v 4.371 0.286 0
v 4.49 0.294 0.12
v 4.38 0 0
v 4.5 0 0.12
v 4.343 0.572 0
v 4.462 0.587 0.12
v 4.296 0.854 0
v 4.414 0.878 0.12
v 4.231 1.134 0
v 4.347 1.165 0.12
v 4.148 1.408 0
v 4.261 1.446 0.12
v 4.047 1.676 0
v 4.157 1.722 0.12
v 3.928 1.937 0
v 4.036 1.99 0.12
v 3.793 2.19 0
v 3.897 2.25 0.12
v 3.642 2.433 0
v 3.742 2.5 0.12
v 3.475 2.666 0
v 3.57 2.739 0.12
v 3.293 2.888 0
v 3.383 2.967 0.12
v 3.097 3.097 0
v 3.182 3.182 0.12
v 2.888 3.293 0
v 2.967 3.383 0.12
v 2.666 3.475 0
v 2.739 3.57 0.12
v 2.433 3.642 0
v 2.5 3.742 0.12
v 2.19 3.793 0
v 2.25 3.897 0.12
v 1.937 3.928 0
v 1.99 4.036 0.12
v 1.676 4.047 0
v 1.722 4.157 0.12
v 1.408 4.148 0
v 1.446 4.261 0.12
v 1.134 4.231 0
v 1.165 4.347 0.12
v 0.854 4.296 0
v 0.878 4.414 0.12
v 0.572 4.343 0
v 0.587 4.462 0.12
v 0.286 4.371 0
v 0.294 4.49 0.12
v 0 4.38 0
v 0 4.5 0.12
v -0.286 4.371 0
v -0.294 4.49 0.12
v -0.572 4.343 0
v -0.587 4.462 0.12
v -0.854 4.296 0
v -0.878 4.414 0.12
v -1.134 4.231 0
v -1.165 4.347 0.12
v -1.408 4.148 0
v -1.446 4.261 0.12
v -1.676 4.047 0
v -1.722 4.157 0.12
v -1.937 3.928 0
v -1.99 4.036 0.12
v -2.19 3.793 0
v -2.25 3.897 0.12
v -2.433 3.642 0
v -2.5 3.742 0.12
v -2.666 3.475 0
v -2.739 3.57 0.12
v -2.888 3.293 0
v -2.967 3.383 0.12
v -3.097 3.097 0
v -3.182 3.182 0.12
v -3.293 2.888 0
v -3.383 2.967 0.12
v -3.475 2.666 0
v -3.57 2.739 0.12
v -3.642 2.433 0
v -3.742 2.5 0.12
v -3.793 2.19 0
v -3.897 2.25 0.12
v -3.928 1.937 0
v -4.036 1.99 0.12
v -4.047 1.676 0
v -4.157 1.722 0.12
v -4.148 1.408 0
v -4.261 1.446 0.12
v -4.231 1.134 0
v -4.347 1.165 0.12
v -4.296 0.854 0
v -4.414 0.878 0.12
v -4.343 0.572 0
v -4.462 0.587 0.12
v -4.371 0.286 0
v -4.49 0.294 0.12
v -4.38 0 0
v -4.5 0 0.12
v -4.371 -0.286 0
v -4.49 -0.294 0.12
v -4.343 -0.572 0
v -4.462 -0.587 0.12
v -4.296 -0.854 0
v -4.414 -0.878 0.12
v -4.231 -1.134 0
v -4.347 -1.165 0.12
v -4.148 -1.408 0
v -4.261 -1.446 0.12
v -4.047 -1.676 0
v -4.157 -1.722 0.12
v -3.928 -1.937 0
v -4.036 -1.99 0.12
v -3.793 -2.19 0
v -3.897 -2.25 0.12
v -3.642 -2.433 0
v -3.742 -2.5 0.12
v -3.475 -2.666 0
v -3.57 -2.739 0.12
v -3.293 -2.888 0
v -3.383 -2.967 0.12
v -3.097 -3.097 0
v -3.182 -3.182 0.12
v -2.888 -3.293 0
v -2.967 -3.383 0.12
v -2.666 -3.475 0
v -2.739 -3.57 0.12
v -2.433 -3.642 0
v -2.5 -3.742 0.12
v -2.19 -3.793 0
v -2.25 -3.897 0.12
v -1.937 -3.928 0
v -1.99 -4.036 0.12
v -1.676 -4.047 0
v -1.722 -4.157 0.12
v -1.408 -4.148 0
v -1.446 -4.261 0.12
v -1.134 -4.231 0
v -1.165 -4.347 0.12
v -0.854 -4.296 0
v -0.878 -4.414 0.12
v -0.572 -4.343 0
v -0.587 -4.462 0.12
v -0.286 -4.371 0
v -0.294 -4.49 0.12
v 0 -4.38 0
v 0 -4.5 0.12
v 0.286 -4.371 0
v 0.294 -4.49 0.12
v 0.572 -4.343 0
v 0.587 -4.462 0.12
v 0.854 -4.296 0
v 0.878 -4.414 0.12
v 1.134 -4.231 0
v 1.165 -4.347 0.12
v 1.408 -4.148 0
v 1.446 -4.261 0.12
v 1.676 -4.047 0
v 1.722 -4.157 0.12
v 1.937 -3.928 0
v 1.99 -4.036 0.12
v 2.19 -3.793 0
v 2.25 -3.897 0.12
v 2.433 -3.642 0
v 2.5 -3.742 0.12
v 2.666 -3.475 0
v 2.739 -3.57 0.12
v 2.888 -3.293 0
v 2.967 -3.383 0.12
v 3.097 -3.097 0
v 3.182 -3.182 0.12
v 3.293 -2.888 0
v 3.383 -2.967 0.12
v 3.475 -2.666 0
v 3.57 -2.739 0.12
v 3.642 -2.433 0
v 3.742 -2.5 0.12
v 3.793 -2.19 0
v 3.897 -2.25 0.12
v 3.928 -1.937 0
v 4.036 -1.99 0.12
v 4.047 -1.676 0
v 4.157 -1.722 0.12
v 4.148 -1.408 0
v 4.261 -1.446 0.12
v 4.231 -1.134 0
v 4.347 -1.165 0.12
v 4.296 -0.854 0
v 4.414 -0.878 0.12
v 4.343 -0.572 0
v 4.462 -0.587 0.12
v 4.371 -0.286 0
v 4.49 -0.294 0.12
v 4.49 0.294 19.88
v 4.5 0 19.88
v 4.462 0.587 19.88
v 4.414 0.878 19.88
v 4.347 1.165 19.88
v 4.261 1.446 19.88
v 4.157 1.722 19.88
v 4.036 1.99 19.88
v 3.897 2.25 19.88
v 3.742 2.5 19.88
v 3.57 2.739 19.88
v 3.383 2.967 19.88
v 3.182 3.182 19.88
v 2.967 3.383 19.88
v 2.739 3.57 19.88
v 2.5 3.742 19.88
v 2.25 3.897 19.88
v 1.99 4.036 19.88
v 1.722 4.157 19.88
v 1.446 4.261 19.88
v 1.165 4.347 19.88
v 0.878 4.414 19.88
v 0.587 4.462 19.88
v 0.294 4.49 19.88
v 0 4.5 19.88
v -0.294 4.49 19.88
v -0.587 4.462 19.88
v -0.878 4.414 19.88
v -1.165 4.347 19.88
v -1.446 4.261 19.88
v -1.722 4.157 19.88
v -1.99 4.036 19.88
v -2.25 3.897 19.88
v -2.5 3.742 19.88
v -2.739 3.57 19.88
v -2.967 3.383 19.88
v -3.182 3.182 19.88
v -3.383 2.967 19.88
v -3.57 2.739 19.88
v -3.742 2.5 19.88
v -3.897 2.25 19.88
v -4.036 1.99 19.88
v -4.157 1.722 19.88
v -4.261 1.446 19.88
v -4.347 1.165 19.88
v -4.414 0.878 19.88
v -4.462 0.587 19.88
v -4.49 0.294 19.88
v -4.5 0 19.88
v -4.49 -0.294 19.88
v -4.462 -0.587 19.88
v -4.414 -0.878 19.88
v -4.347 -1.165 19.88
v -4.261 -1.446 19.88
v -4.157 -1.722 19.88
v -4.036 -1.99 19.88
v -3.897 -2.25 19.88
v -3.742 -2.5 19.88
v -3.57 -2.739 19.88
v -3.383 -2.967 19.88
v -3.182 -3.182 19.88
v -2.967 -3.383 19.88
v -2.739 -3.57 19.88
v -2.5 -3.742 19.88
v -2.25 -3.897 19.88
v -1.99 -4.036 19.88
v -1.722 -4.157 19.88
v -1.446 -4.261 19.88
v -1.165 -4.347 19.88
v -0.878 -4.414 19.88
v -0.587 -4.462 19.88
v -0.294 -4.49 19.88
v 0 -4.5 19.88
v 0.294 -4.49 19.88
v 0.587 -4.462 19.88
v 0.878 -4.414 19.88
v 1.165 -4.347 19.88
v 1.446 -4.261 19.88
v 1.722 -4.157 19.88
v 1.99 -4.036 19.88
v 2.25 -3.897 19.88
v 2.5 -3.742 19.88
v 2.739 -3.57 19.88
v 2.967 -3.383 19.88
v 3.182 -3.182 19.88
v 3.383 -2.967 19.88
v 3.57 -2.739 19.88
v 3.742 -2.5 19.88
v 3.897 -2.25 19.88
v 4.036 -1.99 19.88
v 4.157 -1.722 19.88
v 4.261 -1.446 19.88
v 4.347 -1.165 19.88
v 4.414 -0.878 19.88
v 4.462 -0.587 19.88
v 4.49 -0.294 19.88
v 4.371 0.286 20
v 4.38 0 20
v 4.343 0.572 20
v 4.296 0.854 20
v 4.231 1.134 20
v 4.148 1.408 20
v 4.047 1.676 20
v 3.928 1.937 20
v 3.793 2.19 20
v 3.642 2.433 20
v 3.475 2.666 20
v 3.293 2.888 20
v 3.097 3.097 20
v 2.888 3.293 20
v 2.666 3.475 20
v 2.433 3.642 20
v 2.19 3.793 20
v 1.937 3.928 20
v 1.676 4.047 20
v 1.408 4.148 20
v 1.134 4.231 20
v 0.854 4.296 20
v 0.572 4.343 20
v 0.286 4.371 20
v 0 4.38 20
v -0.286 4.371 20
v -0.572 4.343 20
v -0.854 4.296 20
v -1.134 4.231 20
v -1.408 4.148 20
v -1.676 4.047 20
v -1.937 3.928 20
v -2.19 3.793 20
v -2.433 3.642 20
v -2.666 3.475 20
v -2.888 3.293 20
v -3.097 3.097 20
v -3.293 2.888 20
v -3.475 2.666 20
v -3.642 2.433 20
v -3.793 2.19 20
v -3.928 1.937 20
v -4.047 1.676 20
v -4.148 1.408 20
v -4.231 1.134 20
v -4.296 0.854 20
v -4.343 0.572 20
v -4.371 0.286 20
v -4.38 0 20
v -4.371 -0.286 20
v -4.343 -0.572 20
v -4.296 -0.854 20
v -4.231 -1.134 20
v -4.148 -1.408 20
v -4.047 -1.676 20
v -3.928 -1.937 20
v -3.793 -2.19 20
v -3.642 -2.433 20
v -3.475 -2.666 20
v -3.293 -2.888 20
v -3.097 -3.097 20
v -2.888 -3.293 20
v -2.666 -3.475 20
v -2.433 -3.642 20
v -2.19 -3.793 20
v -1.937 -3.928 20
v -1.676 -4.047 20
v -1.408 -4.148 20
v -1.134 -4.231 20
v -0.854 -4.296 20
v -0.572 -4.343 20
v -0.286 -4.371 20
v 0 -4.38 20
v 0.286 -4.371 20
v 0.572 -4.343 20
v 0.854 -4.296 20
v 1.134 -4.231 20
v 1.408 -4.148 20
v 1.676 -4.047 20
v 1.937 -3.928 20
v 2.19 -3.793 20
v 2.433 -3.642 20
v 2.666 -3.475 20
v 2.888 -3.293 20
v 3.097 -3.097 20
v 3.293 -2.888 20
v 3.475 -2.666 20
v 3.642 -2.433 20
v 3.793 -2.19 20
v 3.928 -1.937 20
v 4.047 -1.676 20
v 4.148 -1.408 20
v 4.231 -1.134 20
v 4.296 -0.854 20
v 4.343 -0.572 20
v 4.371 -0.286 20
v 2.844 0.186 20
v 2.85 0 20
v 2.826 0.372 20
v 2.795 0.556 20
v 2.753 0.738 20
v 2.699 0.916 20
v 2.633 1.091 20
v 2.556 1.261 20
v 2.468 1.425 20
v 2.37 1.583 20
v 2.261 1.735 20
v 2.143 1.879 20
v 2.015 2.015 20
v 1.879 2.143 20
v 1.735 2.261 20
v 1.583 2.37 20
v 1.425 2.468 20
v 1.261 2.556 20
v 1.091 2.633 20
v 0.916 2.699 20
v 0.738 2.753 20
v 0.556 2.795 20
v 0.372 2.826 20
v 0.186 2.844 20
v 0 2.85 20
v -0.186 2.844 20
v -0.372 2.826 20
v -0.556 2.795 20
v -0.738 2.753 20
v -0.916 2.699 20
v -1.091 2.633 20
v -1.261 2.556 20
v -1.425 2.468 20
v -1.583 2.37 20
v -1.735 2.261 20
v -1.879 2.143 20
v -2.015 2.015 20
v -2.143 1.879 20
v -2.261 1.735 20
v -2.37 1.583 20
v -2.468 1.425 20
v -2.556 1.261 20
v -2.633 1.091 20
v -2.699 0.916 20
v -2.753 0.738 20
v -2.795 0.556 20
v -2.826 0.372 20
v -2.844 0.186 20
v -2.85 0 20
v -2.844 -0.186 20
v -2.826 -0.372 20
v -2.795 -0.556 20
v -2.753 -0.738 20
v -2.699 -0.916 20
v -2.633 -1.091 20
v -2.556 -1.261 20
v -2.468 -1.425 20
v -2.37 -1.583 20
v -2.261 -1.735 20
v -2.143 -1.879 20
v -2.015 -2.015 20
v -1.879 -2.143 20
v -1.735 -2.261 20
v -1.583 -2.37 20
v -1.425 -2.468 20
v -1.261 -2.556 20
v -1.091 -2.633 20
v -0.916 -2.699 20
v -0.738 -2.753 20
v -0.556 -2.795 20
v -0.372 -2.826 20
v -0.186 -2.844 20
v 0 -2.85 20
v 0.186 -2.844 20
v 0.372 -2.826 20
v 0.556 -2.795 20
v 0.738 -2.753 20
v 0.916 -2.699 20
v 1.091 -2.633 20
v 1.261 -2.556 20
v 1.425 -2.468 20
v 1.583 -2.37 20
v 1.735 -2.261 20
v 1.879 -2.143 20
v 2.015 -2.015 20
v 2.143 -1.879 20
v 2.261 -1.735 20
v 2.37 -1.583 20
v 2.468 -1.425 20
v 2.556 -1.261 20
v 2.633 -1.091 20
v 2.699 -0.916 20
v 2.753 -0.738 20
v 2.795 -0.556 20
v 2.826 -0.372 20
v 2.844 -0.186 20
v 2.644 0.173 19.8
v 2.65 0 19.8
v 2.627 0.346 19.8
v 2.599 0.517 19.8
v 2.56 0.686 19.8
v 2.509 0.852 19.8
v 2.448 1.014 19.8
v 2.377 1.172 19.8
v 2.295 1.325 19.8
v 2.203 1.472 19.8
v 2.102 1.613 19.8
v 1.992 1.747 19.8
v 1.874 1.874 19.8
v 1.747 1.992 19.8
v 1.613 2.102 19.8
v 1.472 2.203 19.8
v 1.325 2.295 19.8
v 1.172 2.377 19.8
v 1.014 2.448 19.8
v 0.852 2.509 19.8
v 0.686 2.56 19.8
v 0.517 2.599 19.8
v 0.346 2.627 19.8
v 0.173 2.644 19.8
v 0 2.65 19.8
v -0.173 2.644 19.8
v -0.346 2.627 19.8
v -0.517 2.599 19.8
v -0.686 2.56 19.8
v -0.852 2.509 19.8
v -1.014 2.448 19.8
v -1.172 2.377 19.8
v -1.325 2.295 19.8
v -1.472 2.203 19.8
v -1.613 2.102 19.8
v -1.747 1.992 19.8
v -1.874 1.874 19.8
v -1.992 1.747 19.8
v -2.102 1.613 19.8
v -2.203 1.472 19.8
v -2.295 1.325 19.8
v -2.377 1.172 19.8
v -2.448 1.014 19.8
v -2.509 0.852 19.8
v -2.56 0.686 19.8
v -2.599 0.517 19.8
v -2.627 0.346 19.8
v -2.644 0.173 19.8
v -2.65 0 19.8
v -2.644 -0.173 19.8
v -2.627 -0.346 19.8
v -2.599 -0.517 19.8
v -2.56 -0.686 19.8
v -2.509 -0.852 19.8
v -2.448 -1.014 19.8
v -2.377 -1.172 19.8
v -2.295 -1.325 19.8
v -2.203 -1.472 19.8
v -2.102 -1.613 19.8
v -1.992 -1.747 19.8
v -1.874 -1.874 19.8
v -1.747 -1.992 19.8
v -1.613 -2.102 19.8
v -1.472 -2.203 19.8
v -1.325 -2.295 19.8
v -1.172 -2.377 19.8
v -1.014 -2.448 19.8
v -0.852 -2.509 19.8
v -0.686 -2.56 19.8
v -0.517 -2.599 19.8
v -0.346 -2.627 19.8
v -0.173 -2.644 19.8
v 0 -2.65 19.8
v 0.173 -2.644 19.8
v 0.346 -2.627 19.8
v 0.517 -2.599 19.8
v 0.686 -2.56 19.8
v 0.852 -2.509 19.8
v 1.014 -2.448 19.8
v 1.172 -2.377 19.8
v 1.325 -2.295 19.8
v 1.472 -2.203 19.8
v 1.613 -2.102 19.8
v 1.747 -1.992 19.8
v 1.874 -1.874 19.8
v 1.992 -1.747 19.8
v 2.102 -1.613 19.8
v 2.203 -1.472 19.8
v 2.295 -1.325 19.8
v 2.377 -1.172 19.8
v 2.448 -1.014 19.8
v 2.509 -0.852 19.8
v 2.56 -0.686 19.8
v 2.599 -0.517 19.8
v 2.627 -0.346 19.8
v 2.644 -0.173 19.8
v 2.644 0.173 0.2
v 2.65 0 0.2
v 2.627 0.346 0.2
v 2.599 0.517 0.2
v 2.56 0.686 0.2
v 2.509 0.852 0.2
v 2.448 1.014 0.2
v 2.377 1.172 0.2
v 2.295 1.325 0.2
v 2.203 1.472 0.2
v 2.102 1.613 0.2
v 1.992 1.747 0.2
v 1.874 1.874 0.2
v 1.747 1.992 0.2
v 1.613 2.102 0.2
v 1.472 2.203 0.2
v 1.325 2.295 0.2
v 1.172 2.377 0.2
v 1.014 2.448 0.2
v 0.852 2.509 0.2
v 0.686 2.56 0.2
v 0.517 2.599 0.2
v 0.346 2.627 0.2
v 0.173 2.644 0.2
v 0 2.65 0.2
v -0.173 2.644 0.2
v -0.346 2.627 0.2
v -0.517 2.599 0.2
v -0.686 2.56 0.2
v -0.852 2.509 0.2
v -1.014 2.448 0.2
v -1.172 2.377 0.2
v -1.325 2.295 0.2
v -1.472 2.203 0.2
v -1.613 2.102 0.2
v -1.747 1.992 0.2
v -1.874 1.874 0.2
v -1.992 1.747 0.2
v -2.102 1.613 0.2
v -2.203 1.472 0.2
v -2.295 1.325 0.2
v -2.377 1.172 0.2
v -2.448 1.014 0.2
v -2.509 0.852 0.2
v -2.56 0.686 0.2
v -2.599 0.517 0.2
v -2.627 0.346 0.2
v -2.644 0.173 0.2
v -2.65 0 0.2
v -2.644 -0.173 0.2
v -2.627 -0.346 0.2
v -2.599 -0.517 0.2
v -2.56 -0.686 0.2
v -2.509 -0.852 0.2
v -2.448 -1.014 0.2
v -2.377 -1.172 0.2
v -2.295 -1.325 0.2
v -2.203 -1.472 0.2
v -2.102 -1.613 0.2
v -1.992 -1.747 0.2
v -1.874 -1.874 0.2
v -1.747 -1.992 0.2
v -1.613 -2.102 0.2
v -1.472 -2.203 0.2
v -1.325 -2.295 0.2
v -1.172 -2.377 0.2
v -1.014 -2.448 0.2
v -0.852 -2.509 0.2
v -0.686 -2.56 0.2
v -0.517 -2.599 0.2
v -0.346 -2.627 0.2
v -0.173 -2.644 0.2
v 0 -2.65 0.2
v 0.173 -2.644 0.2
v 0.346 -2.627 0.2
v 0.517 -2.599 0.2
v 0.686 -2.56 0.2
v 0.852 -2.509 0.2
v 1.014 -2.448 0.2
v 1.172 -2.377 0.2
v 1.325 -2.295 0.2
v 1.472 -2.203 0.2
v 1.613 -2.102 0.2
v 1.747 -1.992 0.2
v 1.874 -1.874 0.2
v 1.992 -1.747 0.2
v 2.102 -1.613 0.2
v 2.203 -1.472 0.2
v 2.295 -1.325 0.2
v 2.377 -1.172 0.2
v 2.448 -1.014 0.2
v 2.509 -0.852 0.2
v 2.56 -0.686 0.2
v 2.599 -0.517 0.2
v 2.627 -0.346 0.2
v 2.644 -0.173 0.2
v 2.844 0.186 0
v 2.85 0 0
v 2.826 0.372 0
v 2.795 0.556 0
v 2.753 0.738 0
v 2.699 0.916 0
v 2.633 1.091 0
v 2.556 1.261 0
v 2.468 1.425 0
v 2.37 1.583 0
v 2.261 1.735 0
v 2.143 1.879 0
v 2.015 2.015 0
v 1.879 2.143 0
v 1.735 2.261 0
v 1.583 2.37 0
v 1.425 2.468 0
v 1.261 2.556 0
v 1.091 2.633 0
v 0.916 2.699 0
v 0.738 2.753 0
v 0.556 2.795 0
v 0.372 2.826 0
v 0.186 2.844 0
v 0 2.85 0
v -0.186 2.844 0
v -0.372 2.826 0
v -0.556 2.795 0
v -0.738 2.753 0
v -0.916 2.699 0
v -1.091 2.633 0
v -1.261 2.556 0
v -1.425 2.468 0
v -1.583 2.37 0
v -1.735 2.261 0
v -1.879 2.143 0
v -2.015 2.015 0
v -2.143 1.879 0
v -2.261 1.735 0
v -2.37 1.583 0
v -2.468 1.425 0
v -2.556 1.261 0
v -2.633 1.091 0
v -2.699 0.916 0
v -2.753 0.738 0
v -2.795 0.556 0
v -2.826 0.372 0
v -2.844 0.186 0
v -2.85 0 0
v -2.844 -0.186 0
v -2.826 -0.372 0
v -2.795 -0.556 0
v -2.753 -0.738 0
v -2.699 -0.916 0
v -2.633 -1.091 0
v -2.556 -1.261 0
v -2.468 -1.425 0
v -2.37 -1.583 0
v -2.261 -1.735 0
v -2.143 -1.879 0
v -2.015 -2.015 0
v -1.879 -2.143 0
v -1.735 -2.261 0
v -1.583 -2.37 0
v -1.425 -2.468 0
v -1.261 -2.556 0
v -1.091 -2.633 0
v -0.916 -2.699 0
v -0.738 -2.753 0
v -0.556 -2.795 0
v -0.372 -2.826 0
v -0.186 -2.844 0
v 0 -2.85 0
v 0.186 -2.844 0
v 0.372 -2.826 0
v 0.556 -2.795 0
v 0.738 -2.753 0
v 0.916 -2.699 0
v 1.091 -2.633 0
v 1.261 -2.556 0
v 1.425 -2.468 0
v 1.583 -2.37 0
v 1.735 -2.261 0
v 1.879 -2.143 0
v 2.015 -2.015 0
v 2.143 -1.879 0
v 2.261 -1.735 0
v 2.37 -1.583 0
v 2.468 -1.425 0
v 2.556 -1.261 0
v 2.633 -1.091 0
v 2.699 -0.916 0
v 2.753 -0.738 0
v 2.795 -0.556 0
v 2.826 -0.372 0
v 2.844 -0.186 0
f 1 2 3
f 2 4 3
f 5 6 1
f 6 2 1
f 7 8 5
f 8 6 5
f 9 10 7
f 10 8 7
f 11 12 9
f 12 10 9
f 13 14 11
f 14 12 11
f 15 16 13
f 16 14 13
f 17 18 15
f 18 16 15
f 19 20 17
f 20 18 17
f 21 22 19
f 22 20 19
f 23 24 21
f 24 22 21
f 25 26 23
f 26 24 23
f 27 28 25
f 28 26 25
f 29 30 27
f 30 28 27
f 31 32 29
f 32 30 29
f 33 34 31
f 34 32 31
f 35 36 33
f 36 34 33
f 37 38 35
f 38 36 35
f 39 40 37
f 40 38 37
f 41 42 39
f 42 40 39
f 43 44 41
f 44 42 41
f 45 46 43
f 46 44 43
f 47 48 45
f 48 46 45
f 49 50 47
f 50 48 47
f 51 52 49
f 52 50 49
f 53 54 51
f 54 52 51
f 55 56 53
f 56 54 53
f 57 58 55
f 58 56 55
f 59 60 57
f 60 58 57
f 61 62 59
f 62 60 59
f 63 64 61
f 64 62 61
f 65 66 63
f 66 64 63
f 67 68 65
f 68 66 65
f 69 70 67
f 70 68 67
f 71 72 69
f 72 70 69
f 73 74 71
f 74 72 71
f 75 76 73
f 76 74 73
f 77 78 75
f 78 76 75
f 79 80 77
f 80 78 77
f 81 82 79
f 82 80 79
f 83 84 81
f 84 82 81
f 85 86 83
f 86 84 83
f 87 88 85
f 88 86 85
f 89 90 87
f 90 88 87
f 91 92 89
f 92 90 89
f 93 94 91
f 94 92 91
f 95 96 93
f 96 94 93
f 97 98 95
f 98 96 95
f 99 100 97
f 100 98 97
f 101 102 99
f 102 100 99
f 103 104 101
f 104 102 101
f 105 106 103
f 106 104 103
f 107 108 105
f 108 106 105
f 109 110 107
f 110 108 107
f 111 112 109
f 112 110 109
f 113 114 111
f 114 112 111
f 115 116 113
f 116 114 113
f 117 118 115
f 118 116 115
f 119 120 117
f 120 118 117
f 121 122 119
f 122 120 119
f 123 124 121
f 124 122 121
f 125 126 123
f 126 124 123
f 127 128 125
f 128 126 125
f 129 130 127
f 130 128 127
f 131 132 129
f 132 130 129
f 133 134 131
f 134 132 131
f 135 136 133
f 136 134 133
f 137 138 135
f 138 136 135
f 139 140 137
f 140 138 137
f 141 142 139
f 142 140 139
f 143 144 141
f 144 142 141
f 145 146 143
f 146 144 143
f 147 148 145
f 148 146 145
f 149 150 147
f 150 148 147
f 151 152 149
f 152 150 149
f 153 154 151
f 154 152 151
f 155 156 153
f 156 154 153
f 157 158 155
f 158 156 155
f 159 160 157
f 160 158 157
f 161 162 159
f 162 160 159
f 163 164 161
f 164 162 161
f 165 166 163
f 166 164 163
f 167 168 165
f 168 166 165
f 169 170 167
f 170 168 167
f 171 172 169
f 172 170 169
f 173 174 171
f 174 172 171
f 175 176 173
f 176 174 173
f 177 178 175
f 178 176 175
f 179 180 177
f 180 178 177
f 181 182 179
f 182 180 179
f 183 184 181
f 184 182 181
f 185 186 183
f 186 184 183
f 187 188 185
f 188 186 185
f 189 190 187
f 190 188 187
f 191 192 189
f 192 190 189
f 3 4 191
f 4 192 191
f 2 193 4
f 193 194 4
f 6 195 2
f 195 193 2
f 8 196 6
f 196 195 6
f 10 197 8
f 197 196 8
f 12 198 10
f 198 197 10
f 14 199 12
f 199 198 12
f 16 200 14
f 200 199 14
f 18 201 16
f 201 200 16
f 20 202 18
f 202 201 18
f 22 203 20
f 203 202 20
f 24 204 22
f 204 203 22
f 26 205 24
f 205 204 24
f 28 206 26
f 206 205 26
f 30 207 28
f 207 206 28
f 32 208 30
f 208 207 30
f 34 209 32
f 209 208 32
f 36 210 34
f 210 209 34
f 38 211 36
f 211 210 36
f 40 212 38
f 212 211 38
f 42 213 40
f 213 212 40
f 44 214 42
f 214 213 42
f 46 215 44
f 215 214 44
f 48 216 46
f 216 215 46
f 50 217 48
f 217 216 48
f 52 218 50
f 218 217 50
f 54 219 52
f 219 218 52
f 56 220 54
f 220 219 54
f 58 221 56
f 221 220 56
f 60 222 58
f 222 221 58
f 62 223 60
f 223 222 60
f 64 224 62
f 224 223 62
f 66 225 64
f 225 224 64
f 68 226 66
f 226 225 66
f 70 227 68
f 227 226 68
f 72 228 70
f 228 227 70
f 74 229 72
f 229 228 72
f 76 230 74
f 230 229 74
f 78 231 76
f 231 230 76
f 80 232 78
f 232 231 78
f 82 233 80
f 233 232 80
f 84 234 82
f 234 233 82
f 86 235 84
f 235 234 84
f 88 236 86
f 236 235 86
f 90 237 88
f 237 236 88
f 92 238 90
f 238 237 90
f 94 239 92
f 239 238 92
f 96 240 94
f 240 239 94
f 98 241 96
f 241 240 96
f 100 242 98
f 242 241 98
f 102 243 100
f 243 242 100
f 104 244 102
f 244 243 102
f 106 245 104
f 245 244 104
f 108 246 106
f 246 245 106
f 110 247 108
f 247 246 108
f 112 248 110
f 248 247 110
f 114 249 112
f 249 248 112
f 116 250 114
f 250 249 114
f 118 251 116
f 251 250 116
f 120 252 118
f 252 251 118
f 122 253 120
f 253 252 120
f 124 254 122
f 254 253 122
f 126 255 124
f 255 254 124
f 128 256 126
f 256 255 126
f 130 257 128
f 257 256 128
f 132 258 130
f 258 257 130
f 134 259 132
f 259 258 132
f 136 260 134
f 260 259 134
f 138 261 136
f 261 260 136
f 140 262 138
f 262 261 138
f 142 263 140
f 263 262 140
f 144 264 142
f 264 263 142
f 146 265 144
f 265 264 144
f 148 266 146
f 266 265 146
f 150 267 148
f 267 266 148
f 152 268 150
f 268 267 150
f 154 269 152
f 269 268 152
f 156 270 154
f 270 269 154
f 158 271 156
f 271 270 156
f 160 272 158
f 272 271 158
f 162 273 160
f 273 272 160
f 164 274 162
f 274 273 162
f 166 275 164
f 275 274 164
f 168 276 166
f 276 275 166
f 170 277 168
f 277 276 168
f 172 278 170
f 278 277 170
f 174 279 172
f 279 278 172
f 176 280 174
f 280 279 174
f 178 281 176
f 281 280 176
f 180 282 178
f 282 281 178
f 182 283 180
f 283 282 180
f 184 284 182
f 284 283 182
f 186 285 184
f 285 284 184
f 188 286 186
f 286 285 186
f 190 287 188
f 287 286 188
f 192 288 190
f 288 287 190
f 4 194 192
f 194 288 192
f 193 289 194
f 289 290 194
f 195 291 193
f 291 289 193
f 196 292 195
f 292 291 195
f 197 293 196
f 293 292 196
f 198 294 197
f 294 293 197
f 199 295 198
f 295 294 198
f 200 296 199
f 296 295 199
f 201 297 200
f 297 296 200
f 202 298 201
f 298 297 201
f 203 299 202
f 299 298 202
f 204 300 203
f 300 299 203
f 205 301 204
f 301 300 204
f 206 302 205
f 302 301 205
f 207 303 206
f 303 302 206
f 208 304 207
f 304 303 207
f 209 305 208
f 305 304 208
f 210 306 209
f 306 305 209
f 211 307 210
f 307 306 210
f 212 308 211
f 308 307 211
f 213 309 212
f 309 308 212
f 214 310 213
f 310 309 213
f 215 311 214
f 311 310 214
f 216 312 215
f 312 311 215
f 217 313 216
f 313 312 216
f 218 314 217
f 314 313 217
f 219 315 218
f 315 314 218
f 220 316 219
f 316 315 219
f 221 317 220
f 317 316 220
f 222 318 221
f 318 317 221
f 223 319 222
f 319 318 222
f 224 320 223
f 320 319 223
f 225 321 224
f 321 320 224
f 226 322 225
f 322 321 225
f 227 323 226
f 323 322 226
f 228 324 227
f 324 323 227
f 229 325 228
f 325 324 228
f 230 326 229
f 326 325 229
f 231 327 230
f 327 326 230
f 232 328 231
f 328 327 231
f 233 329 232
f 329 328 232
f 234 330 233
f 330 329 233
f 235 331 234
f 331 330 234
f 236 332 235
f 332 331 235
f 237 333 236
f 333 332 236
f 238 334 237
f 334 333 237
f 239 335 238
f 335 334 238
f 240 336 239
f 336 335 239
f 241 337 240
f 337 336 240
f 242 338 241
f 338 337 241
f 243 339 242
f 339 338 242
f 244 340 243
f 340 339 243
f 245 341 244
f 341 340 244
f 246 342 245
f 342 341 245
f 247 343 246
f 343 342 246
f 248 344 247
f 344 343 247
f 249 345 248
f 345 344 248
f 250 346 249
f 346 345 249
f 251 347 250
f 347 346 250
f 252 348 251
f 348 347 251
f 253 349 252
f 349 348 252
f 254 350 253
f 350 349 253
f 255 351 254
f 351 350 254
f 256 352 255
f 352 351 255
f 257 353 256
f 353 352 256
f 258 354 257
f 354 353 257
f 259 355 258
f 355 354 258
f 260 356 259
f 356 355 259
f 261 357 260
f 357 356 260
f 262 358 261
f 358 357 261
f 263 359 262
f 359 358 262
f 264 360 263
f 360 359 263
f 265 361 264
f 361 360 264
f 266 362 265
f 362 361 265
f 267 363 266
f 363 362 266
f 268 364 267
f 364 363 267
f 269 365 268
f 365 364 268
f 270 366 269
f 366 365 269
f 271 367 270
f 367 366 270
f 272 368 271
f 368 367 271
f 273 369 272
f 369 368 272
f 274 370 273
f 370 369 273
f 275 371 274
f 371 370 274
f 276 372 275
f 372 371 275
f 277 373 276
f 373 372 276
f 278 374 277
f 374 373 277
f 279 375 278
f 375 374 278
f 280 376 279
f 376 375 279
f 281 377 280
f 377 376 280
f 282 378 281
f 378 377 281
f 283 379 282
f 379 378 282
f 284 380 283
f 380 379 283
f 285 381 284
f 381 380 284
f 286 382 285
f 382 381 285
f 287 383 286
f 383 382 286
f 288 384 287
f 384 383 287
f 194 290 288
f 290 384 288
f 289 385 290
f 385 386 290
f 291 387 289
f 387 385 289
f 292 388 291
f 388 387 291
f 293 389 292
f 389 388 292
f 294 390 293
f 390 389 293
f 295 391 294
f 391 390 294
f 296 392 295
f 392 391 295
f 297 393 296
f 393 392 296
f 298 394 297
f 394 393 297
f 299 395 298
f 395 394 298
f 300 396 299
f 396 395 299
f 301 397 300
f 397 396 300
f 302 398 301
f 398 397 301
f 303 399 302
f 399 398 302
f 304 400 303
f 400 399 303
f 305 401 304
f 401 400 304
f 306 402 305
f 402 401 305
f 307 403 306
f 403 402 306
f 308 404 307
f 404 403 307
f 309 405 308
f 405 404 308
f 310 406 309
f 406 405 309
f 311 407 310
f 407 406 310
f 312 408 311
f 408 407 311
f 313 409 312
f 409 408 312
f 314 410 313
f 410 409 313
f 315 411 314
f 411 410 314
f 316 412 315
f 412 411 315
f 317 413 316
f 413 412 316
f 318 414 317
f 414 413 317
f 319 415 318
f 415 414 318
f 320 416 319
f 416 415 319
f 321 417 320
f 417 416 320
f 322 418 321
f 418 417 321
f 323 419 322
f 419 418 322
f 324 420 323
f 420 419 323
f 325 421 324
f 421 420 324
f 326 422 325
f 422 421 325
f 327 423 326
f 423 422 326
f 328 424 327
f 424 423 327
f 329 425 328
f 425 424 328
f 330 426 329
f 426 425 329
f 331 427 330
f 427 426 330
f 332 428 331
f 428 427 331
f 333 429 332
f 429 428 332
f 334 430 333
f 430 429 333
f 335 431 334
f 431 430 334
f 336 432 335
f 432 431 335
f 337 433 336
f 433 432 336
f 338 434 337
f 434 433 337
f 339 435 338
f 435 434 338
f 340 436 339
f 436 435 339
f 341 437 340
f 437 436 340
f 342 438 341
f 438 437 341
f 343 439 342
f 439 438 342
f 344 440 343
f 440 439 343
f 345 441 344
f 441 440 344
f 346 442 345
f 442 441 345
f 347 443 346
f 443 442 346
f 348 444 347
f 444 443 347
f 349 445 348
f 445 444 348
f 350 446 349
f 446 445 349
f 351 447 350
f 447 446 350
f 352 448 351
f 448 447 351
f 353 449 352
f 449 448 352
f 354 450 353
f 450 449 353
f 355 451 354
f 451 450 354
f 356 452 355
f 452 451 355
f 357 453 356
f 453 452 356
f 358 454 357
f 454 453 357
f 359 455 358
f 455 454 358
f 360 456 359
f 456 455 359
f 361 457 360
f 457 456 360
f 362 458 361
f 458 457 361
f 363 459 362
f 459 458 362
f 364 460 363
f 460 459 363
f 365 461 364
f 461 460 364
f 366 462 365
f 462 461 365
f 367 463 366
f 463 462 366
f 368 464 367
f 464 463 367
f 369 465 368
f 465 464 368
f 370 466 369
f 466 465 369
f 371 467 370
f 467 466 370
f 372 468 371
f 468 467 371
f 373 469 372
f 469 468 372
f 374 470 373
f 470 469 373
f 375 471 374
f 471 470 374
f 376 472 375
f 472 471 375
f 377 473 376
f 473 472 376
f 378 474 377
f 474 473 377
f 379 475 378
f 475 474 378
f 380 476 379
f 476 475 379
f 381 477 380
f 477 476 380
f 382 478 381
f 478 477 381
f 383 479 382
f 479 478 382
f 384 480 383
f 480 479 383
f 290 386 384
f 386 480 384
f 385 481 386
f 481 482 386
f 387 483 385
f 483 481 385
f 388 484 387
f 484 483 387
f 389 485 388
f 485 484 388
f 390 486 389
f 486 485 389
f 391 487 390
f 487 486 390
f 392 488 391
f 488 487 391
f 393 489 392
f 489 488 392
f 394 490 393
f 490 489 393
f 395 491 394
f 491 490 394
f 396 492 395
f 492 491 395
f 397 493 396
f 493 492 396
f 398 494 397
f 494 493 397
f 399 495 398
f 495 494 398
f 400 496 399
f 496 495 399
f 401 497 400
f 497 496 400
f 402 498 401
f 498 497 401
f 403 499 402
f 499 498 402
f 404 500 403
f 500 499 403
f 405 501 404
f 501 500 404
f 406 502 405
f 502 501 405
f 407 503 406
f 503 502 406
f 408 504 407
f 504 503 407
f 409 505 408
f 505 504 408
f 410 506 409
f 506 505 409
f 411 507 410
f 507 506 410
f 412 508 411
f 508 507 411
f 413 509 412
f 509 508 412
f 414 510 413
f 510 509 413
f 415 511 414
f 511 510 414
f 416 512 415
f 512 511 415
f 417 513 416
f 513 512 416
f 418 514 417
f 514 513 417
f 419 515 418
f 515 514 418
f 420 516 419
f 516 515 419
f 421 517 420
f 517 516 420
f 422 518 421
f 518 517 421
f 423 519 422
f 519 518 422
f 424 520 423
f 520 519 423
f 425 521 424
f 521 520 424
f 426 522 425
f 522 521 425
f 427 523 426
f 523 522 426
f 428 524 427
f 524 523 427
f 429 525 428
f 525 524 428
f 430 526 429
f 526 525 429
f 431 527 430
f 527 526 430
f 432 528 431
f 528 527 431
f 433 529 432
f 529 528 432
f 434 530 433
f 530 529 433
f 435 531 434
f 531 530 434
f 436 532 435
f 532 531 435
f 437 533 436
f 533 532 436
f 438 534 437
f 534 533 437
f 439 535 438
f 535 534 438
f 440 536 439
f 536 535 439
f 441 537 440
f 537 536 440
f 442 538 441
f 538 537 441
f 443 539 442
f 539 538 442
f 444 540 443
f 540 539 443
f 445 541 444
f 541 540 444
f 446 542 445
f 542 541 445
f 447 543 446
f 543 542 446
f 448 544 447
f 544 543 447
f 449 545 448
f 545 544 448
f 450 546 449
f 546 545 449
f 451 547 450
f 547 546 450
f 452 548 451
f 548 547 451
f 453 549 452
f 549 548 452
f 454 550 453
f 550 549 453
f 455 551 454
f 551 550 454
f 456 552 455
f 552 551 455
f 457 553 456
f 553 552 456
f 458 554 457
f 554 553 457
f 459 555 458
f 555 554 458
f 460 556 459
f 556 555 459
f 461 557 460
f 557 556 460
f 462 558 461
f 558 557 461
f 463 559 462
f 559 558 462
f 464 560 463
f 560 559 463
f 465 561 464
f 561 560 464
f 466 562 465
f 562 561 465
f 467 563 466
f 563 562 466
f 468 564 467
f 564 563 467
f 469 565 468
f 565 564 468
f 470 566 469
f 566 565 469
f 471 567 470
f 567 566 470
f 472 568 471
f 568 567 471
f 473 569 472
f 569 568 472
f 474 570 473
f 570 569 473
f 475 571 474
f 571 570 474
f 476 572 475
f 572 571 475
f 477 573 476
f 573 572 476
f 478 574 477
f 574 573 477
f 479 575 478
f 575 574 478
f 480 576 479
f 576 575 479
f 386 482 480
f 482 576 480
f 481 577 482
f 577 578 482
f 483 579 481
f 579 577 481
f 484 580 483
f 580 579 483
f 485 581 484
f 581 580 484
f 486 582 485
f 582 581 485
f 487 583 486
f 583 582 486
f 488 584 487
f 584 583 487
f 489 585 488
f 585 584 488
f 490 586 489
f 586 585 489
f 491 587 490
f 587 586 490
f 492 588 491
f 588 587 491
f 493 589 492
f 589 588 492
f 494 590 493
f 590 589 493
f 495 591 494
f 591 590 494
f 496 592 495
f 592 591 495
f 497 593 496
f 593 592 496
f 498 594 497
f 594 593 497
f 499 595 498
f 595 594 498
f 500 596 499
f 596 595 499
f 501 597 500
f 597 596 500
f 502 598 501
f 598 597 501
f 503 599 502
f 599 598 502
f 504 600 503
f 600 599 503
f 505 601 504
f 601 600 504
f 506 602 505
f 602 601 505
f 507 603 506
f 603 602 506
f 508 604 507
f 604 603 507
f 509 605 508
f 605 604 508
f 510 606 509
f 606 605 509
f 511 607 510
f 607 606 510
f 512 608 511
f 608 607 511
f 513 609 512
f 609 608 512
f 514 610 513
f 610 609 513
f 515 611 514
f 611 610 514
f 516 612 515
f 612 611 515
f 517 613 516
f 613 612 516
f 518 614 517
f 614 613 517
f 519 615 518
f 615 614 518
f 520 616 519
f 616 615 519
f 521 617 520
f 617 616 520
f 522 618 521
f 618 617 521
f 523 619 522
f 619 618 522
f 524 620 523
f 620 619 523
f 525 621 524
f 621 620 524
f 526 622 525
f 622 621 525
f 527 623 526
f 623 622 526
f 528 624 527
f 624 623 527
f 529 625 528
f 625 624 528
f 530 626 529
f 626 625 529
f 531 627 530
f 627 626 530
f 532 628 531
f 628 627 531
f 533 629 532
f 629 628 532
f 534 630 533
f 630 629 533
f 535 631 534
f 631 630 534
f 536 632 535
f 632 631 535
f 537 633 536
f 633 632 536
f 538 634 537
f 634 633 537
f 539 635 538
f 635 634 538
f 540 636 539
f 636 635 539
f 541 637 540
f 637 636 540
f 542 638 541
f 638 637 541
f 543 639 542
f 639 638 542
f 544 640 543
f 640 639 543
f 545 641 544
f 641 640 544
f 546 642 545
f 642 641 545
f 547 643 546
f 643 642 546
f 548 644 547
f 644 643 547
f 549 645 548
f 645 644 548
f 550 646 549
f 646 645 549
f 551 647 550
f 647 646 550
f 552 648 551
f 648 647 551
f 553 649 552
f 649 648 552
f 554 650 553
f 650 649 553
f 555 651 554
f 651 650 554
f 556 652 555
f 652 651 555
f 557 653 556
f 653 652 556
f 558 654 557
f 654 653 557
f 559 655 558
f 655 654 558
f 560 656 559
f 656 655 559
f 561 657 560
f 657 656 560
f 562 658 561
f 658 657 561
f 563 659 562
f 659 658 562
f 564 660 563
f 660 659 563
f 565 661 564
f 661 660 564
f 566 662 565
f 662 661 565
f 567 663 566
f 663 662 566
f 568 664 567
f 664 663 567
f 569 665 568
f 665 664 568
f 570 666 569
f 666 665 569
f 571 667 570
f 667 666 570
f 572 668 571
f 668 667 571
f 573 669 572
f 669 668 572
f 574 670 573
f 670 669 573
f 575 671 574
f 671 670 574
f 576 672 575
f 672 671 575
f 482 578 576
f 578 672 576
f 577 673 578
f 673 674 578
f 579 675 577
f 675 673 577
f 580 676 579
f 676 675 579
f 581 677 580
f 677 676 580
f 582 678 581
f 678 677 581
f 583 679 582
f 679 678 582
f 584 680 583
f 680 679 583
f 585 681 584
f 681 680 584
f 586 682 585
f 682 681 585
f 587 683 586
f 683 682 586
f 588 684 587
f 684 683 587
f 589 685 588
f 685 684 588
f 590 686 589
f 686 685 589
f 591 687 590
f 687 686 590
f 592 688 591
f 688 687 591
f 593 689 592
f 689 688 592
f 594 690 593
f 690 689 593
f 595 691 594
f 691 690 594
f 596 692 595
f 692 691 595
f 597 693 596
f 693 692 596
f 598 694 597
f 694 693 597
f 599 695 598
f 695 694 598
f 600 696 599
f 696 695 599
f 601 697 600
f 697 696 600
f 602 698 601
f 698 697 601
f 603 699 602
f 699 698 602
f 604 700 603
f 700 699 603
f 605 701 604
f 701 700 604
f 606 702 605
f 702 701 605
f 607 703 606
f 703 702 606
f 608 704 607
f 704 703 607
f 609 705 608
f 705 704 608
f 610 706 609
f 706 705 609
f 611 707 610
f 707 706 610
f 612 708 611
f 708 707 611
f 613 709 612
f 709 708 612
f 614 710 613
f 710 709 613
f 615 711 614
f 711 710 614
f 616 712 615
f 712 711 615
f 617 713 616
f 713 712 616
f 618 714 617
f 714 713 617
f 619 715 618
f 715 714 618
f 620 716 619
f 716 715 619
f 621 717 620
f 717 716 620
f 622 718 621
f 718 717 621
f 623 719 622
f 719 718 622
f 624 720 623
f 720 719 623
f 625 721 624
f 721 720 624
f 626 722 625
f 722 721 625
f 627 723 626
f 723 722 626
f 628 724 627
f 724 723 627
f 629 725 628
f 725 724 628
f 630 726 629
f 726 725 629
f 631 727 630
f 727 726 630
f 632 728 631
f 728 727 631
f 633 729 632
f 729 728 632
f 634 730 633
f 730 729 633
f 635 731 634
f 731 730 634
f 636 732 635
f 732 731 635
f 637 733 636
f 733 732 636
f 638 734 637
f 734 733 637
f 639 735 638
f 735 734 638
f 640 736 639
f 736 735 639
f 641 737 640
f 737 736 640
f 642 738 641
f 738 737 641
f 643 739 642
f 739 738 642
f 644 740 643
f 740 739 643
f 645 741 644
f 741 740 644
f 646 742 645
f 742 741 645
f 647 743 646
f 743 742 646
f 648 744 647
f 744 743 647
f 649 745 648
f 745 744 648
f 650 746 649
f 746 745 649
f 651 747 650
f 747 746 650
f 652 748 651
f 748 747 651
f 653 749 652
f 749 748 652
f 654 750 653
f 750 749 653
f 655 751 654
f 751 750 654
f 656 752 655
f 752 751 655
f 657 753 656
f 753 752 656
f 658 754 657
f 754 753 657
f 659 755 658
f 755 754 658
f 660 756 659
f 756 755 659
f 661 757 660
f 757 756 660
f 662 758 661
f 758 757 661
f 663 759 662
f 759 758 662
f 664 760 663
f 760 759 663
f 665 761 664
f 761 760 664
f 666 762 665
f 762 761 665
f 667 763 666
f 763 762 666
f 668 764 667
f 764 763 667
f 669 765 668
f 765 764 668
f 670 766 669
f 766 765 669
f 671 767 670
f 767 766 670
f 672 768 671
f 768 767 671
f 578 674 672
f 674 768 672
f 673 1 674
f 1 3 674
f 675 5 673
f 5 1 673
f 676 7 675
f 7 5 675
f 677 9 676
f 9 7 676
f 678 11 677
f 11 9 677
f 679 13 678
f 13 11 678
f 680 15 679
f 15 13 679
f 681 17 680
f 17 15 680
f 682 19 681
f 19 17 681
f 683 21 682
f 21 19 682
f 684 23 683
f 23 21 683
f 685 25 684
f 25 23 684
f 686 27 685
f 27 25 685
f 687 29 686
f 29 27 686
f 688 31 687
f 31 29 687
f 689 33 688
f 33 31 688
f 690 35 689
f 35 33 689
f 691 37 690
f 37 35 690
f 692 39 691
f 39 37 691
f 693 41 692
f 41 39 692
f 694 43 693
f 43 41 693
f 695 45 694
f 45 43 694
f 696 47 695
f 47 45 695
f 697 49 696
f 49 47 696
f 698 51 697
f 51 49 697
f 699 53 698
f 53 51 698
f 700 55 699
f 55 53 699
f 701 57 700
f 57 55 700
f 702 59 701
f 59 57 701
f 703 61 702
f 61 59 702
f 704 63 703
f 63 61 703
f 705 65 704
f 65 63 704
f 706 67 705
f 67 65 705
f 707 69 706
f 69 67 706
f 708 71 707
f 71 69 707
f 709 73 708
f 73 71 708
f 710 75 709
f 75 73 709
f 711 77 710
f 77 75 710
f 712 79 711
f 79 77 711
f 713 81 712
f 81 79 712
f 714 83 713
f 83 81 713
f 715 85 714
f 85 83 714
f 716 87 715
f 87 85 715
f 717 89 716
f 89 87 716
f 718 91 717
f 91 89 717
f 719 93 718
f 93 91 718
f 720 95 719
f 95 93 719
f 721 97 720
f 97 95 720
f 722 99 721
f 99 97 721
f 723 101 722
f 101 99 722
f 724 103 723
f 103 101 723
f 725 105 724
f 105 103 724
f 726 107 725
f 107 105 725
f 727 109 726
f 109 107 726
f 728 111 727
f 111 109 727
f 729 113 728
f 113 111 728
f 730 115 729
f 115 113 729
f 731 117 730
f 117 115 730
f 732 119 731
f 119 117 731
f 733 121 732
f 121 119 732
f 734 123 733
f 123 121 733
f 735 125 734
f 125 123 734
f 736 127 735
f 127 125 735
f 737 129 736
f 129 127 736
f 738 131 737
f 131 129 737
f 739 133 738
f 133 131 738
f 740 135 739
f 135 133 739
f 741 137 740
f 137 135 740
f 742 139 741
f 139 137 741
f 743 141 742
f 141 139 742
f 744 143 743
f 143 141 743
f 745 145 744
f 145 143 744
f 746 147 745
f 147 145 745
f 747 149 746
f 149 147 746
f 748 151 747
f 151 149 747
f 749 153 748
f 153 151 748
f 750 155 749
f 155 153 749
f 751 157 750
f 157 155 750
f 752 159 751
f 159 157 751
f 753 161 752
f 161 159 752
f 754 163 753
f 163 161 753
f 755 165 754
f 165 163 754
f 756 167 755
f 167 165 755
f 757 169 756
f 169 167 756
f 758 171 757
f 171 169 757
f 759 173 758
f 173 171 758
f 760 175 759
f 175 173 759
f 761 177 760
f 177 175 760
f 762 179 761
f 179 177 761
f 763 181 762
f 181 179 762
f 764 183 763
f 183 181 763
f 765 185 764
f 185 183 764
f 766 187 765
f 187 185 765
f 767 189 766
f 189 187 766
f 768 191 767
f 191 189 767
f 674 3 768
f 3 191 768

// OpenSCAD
// OOMP generic catalogue model; units: mm.
// Stud length is additional to body depth. Tapping depths are model assumptions.
variant = "full"; // [full, display]
family = "spacer";
connection_type = "plain";
depth_mm = 20;
stud_length_mm = 0;
tapped_depth_mm = 0;
bore_mm = 5.3;
outer_diameter_mm = 9;
across_flats_mm = 6;
thread_nominal_diameter_mm = 3;
thread_pitch_mm = 0.5;
edge_chamfer_mm = 0.12;
mouth_chamfer_mm = 0.2;
angular_segments = 96;
samples_per_pitch = 16;

// Boundary travels up the outside, then down any tapped/plain bore.
// Equal-height rings at shoulders form the annular shoulder faces.
n = angular_segments;
threaded = family == "standoff";
has_stud = connection_type == "stud_to_tapped" || connection_type == "stud_to_stud";
two_studs = connection_type == "stud_to_stud";
through = !threaded || connection_type == "tapped_to_tapped";
pitch = thread_pitch_mm;
diameter = threaded ? thread_nominal_diameter_mm : bore_mm;
minor = diameter - 5*sqrt(3)*pitch/8;
transition = mouth_chamfer_mm + (threaded ? 5*sqrt(3)*pitch/16 : 0);
tip_chamfer = mouth_chamfer_mm + 17*sqrt(3)*pitch/48;
function sorted(v) = len(v)<=1 ? v : let(p=v[0])
    concat(sorted([for(x=v) if(x<p-1e-8) x]), [p], sorted([for(x=v) if(x>p+1e-8) x]));
function reverse(v) = [for(i=[len(v)-1:-1:0]) v[i]];
function theta(i) = i*360/n;
function fract(x) = x-floor(x);
function phase_distance(i,z) = abs(fract(z/pitch-theta(i)/360+0.5)-0.5);
function thread_r(i,z) = minor/2 + min(5*sqrt(3)*pitch/16,
    max(0,(phase_distance(i,z)-0.125)*pitch*sqrt(3)));
function stud_r(i,z,tip) = min(diameter/2 - (variant=="full" ?
    min(17*sqrt(3)*pitch/48,max(0,(phase_distance(i,z)-0.0625)*pitch*sqrt(3))) : 0),
    diameter/2-tip_chamfer+abs(z-tip));
function body_r(i,z) = (threaded ? across_flats_mm/2/cos(theta(i)%60-30) : outer_diameter_mm/2)
    - max(0,edge_chamfer_mm-min(z,depth_mm-z));
function bore_r(i,z) = max(threaded ? (variant=="full" ? thread_r(i,z) : minor/2) : diameter/2,
    diameter/2+mouth_chamfer_mm-(through ? min(z,depth_mm-z) : depth_mm-z));
function stud_z(a,b,tip) = let(count=variant=="full" ? ceil(stud_length_mm/pitch*samples_per_pitch) : 1)
    sorted(concat([for(i=[0:count]) a+(b-a)*i/count], [tip==a ? tip+tip_chamfer : tip-tip_chamfer]));
body_z = sorted([0,edge_chamfer_mm,depth_mm-edge_chamfer_mm,depth_mm]);
low = through ? 0 : depth_mm-tapped_depth_mm;
count = threaded && variant=="full" ? ceil((depth_mm-low)/pitch*samples_per_pitch) : 1;
bore_z = two_studs ? [] : reverse(sorted(concat(
    [for(i=[0:count]) low+(depth_mm-low)*i/count],
    [depth_mm-mouth_chamfer_mm,depth_mm-transition],
    through ? [mouth_chamfer_mm,transition] : [])));
// Ring descriptors: [height, kind, tip]. Kind: 0 body, 1 stud, 2 bore.
rings = concat(
    has_stud ? [for(z=stud_z(-stud_length_mm,0,-stud_length_mm)) [z,1,-stud_length_mm]] : [],
    [for(z=body_z) [z,0,0]],
    two_studs ? [for(z=stud_z(depth_mm,depth_mm+stud_length_mm,depth_mm+stud_length_mm)) [z,1,depth_mm+stud_length_mm]] : [],
    [for(z=bore_z) [z,2,0]]);
function radius(i,ring) = ring[1]==0 ? body_r(i,ring[0]) :
    ring[1]==1 ? stud_r(i,ring[0],ring[2]) : bore_r(i,ring[0]);
points = concat([for(ring=rings) for(i=[0:n-1])
    [radius(i,ring)*cos(theta(i)),radius(i,ring)*sin(theta(i)),ring[0]]],
    through ? [] : [[0,0,rings[0][0]],[0,0,rings[len(rings)-1][0]]]);
center = len(rings)*n;
last = (len(rings)-1)*n;
// OpenSCAD winding is opposite to STL winding.
faces = concat(
    [for(j=[0:len(rings)-(through ? 1 : 2)]) for(i=[0:n-1]) each
        let(a=j*n+i,b=j*n+(i+1)%n,c=((j+1)%len(rings))*n+(i+1)%n,d=((j+1)%len(rings))*n+i)
        [[a,c,b],[a,d,c]]],
    through ? [] : [for(i=[0:n-1]) each let(k=(i+1)%n)
        [[center,i,k],[center+1,last+k,last+i]]]);
assert(family=="spacer" || family=="standoff");
assert(!threaded || connection_type=="tapped_to_tapped" || has_stud);
assert(depth_mm>0 && diameter>0 && pitch>0);
assert(variant=="full" || variant=="display");
assert(n>=24 && n%12==0 && samples_per_pitch>=8);
assert(mouth_chamfer_mm>0 && mouth_chamfer_mm<depth_mm/2);
assert(edge_chamfer_mm>=0 && edge_chamfer_mm<depth_mm/2);
assert(diameter+4*max(mouth_chamfer_mm,edge_chamfer_mm) < (threaded ? across_flats_mm : outer_diameter_mm));
assert(!has_stud || stud_length_mm>2*mouth_chamfer_mm);
assert(!through || !threaded || 2*transition<depth_mm);
assert(connection_type!="stud_to_tapped" || (tapped_depth_mm>transition && tapped_depth_mm<depth_mm));
color([0.86,0.85,0.81]) polyhedron(points=points,faces=faces,convexity=20);
